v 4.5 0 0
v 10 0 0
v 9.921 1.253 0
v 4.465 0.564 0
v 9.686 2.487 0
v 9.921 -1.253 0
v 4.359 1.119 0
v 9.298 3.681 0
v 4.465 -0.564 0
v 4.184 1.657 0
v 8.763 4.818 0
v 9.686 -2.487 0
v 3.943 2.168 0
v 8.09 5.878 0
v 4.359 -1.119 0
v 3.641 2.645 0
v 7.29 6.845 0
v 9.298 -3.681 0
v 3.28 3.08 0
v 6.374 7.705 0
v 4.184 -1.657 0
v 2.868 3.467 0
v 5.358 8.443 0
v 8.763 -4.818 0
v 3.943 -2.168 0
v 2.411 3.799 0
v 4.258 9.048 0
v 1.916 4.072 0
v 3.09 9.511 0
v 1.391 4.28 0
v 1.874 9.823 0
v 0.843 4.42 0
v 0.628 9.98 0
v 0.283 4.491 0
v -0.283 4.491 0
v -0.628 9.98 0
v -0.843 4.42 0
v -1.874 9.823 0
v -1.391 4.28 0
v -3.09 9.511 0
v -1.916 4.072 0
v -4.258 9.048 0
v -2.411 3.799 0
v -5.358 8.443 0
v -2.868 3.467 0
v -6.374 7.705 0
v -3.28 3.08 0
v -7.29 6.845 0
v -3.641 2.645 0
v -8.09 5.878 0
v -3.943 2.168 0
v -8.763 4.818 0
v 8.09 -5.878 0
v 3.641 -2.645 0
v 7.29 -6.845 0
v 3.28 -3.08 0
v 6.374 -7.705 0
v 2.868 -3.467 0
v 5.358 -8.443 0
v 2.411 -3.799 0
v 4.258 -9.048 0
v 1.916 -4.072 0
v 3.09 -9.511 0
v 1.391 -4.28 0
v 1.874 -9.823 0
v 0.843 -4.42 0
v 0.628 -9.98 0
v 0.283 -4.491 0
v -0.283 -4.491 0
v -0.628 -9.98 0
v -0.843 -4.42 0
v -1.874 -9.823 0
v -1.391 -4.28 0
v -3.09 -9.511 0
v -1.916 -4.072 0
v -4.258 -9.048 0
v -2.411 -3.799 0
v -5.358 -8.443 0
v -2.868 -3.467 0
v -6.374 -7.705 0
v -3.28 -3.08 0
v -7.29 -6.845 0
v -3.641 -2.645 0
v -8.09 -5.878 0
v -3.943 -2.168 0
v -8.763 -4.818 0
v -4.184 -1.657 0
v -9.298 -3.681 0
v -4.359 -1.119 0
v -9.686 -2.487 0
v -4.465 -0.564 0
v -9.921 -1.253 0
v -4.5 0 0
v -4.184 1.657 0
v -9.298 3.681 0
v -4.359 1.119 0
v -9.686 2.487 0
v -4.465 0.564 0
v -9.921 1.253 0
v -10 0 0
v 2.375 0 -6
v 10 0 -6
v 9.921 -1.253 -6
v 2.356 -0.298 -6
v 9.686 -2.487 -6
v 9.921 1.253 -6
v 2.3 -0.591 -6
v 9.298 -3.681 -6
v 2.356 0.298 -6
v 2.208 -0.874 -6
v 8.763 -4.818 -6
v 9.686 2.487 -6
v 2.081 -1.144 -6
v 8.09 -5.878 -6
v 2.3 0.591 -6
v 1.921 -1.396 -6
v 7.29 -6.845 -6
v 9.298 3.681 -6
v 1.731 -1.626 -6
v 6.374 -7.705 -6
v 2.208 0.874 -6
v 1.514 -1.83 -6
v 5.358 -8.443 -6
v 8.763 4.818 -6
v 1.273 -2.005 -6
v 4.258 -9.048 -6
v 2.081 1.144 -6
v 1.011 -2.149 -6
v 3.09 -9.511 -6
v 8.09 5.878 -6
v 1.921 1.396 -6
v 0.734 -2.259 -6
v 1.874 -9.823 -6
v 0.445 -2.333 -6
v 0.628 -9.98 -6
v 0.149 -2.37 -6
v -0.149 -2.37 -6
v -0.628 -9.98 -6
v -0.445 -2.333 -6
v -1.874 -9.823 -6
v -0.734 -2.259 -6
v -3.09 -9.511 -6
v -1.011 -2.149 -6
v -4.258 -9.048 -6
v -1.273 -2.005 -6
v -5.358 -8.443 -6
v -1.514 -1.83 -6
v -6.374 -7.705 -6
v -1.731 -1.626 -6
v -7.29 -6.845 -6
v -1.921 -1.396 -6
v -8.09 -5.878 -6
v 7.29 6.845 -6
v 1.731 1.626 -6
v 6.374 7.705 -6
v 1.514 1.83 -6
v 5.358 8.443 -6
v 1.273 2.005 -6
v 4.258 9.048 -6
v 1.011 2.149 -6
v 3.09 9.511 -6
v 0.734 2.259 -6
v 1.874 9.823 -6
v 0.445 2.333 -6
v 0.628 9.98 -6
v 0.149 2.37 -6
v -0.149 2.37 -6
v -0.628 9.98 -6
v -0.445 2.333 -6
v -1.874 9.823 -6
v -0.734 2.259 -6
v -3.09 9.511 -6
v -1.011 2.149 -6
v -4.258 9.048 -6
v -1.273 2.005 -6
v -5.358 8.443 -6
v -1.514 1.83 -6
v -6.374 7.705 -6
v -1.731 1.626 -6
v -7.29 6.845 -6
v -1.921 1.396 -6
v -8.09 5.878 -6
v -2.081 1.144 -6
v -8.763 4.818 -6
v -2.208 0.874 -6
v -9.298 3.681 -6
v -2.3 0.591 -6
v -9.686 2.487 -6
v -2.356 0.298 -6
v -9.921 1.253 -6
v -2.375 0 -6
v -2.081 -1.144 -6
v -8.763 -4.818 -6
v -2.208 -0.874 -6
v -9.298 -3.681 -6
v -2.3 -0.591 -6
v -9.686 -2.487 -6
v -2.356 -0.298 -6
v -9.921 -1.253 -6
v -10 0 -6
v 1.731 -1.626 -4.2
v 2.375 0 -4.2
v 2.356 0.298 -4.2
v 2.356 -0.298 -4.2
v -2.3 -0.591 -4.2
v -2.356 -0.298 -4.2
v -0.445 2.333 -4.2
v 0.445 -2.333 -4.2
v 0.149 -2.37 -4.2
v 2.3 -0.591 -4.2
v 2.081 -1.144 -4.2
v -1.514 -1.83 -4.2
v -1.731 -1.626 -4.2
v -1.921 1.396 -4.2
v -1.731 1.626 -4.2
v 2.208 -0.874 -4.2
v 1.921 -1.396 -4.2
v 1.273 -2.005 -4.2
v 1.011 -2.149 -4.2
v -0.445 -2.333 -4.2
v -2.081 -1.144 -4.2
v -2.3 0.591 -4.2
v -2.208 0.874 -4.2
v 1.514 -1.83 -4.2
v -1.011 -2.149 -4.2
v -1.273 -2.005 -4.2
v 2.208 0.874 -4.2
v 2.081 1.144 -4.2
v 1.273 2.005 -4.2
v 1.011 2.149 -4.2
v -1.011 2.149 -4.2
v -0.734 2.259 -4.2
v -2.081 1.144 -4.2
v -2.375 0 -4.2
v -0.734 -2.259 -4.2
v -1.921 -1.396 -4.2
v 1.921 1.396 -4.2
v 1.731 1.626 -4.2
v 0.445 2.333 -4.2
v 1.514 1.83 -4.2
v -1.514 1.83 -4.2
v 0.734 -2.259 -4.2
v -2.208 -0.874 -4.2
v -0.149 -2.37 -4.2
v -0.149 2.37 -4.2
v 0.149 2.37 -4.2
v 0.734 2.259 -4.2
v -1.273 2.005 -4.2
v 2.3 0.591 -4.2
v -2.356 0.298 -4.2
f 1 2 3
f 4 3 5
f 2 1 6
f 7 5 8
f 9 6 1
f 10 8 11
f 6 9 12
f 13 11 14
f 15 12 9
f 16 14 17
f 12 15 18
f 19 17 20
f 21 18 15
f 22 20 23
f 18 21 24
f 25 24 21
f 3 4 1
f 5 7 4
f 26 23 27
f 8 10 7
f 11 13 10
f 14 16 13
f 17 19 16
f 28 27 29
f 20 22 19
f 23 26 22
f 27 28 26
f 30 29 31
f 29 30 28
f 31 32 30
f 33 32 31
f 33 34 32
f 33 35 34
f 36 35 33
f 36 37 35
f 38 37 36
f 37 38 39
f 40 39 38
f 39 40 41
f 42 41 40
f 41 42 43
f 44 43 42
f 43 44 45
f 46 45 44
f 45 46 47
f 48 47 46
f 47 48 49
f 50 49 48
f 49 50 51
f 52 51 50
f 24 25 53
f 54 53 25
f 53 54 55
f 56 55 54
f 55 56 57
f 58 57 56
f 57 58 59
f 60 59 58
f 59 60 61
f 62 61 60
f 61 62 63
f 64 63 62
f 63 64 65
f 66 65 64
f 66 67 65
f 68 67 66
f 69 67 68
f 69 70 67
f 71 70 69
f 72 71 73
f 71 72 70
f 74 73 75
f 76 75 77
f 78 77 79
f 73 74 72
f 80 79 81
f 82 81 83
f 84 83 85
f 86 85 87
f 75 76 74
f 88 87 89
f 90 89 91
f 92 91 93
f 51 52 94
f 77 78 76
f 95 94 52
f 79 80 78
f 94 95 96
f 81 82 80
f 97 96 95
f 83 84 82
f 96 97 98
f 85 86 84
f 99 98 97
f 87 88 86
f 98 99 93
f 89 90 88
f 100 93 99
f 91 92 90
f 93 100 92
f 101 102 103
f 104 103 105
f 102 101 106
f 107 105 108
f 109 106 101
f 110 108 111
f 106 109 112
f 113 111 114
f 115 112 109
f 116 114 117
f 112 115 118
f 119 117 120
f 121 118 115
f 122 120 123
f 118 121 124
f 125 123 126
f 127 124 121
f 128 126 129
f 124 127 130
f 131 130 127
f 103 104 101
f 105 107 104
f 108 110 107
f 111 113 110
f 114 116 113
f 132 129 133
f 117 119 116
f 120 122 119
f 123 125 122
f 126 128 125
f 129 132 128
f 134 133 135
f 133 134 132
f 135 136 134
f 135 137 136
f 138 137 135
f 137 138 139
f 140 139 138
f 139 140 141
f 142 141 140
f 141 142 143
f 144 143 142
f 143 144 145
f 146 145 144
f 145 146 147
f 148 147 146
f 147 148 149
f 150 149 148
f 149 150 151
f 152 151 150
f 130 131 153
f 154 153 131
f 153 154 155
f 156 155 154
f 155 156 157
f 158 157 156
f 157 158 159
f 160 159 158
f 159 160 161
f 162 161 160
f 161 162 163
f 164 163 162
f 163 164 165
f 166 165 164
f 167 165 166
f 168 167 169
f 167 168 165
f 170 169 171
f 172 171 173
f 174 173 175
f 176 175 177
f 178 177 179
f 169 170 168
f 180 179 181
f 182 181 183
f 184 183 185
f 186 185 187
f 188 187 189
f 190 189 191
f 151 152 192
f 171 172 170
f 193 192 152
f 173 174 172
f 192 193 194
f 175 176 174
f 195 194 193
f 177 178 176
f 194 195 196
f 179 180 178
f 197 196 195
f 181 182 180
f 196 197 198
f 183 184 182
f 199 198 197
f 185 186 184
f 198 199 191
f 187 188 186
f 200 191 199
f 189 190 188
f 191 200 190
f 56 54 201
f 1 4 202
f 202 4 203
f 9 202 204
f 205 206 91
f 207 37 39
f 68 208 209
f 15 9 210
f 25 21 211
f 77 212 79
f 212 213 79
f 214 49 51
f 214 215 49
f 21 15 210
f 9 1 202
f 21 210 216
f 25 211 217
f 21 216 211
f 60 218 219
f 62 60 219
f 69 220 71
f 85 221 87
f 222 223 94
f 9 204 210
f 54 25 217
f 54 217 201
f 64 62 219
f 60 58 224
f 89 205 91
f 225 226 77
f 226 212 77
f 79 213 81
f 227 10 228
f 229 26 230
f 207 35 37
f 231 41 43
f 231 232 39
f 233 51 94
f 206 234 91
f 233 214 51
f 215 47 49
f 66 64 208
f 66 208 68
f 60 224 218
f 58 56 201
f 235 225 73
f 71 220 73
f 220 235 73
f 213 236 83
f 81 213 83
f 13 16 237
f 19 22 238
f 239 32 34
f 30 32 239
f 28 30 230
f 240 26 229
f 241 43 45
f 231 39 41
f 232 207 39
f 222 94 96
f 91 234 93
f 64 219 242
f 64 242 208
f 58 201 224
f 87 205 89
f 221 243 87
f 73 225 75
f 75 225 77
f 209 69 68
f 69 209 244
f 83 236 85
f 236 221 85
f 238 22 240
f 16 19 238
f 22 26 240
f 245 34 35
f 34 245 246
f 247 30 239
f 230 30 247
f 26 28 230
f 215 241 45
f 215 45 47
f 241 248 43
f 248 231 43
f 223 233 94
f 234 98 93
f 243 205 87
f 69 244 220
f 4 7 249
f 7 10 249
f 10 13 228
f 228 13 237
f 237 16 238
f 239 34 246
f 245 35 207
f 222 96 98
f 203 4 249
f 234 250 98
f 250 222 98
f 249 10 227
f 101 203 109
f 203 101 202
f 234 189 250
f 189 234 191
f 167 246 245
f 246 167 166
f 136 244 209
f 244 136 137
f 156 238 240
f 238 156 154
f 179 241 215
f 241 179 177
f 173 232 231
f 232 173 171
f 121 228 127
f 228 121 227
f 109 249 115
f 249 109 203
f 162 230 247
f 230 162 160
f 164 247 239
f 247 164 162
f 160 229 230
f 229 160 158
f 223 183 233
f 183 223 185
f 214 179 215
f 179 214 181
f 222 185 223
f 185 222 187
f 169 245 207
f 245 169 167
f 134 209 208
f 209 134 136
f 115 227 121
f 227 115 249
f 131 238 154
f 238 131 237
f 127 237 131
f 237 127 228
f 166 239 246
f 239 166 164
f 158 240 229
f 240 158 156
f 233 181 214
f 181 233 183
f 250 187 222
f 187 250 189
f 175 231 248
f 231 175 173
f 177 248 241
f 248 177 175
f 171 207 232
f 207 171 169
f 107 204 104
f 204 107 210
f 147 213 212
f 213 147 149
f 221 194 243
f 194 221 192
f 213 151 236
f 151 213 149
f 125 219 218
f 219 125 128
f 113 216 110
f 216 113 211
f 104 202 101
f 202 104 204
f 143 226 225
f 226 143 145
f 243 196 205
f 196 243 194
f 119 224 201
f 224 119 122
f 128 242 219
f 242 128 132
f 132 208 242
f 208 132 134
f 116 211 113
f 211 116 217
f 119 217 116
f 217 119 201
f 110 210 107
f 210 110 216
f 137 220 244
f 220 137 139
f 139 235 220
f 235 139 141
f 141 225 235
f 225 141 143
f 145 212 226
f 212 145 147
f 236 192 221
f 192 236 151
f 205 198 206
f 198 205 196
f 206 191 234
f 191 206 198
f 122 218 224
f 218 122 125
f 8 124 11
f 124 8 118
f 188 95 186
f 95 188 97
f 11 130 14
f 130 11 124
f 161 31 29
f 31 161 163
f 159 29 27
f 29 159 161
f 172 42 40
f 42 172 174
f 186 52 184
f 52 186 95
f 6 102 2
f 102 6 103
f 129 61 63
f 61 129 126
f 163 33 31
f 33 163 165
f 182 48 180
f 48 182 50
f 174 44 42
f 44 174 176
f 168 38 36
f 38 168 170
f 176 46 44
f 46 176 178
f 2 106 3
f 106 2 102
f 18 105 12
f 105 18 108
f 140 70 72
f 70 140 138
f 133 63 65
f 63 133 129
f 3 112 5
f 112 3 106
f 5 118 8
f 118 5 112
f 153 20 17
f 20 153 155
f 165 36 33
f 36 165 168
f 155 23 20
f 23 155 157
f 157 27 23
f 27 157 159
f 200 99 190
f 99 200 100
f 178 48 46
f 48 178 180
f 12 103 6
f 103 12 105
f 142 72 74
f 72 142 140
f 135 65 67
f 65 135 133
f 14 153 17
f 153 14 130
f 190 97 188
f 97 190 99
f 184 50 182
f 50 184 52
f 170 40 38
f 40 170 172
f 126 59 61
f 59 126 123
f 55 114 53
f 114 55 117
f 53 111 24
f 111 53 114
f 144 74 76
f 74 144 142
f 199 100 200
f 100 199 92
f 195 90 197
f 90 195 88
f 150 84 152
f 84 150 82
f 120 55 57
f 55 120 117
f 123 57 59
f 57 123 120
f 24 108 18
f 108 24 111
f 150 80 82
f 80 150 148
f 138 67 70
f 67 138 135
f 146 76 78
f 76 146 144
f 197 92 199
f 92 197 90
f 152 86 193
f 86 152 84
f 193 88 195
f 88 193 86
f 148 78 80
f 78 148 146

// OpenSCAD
$fn = 50;


difference() {
	union() {
		translate(v = [0, 0, -6.0000000000]) {
			cylinder(h = 6, r = 10.0000000000);
		}
		cylinder(h = 0, r = 16.0000000000);
	}
	union() {
		translate(v = [0, 0, 0]) {
			rotate(a = [0, 0, 0]) {
				difference() {
					union() {
						#translate(v = [0, 0, -6.0000000000]) {
							cylinder(h = 6, r = 2.2500000000);
						}
						#translate(v = [0, 0, -4.2000000000]) {
							cylinder(h = 4.2000000000, r1 = 2.3750000000, r2 = 4.5000000000);
						}
						#translate(v = [0, 0, -6.0000000000]) {
							cylinder(h = 6, r = 2.3750000000);
						}
						#translate(v = [0, 0, -6.0000000000]) {
							cylinder(h = 6, r = 2.2500000000);
						}
					}
					union();
				}
			}
		}
	}
}
